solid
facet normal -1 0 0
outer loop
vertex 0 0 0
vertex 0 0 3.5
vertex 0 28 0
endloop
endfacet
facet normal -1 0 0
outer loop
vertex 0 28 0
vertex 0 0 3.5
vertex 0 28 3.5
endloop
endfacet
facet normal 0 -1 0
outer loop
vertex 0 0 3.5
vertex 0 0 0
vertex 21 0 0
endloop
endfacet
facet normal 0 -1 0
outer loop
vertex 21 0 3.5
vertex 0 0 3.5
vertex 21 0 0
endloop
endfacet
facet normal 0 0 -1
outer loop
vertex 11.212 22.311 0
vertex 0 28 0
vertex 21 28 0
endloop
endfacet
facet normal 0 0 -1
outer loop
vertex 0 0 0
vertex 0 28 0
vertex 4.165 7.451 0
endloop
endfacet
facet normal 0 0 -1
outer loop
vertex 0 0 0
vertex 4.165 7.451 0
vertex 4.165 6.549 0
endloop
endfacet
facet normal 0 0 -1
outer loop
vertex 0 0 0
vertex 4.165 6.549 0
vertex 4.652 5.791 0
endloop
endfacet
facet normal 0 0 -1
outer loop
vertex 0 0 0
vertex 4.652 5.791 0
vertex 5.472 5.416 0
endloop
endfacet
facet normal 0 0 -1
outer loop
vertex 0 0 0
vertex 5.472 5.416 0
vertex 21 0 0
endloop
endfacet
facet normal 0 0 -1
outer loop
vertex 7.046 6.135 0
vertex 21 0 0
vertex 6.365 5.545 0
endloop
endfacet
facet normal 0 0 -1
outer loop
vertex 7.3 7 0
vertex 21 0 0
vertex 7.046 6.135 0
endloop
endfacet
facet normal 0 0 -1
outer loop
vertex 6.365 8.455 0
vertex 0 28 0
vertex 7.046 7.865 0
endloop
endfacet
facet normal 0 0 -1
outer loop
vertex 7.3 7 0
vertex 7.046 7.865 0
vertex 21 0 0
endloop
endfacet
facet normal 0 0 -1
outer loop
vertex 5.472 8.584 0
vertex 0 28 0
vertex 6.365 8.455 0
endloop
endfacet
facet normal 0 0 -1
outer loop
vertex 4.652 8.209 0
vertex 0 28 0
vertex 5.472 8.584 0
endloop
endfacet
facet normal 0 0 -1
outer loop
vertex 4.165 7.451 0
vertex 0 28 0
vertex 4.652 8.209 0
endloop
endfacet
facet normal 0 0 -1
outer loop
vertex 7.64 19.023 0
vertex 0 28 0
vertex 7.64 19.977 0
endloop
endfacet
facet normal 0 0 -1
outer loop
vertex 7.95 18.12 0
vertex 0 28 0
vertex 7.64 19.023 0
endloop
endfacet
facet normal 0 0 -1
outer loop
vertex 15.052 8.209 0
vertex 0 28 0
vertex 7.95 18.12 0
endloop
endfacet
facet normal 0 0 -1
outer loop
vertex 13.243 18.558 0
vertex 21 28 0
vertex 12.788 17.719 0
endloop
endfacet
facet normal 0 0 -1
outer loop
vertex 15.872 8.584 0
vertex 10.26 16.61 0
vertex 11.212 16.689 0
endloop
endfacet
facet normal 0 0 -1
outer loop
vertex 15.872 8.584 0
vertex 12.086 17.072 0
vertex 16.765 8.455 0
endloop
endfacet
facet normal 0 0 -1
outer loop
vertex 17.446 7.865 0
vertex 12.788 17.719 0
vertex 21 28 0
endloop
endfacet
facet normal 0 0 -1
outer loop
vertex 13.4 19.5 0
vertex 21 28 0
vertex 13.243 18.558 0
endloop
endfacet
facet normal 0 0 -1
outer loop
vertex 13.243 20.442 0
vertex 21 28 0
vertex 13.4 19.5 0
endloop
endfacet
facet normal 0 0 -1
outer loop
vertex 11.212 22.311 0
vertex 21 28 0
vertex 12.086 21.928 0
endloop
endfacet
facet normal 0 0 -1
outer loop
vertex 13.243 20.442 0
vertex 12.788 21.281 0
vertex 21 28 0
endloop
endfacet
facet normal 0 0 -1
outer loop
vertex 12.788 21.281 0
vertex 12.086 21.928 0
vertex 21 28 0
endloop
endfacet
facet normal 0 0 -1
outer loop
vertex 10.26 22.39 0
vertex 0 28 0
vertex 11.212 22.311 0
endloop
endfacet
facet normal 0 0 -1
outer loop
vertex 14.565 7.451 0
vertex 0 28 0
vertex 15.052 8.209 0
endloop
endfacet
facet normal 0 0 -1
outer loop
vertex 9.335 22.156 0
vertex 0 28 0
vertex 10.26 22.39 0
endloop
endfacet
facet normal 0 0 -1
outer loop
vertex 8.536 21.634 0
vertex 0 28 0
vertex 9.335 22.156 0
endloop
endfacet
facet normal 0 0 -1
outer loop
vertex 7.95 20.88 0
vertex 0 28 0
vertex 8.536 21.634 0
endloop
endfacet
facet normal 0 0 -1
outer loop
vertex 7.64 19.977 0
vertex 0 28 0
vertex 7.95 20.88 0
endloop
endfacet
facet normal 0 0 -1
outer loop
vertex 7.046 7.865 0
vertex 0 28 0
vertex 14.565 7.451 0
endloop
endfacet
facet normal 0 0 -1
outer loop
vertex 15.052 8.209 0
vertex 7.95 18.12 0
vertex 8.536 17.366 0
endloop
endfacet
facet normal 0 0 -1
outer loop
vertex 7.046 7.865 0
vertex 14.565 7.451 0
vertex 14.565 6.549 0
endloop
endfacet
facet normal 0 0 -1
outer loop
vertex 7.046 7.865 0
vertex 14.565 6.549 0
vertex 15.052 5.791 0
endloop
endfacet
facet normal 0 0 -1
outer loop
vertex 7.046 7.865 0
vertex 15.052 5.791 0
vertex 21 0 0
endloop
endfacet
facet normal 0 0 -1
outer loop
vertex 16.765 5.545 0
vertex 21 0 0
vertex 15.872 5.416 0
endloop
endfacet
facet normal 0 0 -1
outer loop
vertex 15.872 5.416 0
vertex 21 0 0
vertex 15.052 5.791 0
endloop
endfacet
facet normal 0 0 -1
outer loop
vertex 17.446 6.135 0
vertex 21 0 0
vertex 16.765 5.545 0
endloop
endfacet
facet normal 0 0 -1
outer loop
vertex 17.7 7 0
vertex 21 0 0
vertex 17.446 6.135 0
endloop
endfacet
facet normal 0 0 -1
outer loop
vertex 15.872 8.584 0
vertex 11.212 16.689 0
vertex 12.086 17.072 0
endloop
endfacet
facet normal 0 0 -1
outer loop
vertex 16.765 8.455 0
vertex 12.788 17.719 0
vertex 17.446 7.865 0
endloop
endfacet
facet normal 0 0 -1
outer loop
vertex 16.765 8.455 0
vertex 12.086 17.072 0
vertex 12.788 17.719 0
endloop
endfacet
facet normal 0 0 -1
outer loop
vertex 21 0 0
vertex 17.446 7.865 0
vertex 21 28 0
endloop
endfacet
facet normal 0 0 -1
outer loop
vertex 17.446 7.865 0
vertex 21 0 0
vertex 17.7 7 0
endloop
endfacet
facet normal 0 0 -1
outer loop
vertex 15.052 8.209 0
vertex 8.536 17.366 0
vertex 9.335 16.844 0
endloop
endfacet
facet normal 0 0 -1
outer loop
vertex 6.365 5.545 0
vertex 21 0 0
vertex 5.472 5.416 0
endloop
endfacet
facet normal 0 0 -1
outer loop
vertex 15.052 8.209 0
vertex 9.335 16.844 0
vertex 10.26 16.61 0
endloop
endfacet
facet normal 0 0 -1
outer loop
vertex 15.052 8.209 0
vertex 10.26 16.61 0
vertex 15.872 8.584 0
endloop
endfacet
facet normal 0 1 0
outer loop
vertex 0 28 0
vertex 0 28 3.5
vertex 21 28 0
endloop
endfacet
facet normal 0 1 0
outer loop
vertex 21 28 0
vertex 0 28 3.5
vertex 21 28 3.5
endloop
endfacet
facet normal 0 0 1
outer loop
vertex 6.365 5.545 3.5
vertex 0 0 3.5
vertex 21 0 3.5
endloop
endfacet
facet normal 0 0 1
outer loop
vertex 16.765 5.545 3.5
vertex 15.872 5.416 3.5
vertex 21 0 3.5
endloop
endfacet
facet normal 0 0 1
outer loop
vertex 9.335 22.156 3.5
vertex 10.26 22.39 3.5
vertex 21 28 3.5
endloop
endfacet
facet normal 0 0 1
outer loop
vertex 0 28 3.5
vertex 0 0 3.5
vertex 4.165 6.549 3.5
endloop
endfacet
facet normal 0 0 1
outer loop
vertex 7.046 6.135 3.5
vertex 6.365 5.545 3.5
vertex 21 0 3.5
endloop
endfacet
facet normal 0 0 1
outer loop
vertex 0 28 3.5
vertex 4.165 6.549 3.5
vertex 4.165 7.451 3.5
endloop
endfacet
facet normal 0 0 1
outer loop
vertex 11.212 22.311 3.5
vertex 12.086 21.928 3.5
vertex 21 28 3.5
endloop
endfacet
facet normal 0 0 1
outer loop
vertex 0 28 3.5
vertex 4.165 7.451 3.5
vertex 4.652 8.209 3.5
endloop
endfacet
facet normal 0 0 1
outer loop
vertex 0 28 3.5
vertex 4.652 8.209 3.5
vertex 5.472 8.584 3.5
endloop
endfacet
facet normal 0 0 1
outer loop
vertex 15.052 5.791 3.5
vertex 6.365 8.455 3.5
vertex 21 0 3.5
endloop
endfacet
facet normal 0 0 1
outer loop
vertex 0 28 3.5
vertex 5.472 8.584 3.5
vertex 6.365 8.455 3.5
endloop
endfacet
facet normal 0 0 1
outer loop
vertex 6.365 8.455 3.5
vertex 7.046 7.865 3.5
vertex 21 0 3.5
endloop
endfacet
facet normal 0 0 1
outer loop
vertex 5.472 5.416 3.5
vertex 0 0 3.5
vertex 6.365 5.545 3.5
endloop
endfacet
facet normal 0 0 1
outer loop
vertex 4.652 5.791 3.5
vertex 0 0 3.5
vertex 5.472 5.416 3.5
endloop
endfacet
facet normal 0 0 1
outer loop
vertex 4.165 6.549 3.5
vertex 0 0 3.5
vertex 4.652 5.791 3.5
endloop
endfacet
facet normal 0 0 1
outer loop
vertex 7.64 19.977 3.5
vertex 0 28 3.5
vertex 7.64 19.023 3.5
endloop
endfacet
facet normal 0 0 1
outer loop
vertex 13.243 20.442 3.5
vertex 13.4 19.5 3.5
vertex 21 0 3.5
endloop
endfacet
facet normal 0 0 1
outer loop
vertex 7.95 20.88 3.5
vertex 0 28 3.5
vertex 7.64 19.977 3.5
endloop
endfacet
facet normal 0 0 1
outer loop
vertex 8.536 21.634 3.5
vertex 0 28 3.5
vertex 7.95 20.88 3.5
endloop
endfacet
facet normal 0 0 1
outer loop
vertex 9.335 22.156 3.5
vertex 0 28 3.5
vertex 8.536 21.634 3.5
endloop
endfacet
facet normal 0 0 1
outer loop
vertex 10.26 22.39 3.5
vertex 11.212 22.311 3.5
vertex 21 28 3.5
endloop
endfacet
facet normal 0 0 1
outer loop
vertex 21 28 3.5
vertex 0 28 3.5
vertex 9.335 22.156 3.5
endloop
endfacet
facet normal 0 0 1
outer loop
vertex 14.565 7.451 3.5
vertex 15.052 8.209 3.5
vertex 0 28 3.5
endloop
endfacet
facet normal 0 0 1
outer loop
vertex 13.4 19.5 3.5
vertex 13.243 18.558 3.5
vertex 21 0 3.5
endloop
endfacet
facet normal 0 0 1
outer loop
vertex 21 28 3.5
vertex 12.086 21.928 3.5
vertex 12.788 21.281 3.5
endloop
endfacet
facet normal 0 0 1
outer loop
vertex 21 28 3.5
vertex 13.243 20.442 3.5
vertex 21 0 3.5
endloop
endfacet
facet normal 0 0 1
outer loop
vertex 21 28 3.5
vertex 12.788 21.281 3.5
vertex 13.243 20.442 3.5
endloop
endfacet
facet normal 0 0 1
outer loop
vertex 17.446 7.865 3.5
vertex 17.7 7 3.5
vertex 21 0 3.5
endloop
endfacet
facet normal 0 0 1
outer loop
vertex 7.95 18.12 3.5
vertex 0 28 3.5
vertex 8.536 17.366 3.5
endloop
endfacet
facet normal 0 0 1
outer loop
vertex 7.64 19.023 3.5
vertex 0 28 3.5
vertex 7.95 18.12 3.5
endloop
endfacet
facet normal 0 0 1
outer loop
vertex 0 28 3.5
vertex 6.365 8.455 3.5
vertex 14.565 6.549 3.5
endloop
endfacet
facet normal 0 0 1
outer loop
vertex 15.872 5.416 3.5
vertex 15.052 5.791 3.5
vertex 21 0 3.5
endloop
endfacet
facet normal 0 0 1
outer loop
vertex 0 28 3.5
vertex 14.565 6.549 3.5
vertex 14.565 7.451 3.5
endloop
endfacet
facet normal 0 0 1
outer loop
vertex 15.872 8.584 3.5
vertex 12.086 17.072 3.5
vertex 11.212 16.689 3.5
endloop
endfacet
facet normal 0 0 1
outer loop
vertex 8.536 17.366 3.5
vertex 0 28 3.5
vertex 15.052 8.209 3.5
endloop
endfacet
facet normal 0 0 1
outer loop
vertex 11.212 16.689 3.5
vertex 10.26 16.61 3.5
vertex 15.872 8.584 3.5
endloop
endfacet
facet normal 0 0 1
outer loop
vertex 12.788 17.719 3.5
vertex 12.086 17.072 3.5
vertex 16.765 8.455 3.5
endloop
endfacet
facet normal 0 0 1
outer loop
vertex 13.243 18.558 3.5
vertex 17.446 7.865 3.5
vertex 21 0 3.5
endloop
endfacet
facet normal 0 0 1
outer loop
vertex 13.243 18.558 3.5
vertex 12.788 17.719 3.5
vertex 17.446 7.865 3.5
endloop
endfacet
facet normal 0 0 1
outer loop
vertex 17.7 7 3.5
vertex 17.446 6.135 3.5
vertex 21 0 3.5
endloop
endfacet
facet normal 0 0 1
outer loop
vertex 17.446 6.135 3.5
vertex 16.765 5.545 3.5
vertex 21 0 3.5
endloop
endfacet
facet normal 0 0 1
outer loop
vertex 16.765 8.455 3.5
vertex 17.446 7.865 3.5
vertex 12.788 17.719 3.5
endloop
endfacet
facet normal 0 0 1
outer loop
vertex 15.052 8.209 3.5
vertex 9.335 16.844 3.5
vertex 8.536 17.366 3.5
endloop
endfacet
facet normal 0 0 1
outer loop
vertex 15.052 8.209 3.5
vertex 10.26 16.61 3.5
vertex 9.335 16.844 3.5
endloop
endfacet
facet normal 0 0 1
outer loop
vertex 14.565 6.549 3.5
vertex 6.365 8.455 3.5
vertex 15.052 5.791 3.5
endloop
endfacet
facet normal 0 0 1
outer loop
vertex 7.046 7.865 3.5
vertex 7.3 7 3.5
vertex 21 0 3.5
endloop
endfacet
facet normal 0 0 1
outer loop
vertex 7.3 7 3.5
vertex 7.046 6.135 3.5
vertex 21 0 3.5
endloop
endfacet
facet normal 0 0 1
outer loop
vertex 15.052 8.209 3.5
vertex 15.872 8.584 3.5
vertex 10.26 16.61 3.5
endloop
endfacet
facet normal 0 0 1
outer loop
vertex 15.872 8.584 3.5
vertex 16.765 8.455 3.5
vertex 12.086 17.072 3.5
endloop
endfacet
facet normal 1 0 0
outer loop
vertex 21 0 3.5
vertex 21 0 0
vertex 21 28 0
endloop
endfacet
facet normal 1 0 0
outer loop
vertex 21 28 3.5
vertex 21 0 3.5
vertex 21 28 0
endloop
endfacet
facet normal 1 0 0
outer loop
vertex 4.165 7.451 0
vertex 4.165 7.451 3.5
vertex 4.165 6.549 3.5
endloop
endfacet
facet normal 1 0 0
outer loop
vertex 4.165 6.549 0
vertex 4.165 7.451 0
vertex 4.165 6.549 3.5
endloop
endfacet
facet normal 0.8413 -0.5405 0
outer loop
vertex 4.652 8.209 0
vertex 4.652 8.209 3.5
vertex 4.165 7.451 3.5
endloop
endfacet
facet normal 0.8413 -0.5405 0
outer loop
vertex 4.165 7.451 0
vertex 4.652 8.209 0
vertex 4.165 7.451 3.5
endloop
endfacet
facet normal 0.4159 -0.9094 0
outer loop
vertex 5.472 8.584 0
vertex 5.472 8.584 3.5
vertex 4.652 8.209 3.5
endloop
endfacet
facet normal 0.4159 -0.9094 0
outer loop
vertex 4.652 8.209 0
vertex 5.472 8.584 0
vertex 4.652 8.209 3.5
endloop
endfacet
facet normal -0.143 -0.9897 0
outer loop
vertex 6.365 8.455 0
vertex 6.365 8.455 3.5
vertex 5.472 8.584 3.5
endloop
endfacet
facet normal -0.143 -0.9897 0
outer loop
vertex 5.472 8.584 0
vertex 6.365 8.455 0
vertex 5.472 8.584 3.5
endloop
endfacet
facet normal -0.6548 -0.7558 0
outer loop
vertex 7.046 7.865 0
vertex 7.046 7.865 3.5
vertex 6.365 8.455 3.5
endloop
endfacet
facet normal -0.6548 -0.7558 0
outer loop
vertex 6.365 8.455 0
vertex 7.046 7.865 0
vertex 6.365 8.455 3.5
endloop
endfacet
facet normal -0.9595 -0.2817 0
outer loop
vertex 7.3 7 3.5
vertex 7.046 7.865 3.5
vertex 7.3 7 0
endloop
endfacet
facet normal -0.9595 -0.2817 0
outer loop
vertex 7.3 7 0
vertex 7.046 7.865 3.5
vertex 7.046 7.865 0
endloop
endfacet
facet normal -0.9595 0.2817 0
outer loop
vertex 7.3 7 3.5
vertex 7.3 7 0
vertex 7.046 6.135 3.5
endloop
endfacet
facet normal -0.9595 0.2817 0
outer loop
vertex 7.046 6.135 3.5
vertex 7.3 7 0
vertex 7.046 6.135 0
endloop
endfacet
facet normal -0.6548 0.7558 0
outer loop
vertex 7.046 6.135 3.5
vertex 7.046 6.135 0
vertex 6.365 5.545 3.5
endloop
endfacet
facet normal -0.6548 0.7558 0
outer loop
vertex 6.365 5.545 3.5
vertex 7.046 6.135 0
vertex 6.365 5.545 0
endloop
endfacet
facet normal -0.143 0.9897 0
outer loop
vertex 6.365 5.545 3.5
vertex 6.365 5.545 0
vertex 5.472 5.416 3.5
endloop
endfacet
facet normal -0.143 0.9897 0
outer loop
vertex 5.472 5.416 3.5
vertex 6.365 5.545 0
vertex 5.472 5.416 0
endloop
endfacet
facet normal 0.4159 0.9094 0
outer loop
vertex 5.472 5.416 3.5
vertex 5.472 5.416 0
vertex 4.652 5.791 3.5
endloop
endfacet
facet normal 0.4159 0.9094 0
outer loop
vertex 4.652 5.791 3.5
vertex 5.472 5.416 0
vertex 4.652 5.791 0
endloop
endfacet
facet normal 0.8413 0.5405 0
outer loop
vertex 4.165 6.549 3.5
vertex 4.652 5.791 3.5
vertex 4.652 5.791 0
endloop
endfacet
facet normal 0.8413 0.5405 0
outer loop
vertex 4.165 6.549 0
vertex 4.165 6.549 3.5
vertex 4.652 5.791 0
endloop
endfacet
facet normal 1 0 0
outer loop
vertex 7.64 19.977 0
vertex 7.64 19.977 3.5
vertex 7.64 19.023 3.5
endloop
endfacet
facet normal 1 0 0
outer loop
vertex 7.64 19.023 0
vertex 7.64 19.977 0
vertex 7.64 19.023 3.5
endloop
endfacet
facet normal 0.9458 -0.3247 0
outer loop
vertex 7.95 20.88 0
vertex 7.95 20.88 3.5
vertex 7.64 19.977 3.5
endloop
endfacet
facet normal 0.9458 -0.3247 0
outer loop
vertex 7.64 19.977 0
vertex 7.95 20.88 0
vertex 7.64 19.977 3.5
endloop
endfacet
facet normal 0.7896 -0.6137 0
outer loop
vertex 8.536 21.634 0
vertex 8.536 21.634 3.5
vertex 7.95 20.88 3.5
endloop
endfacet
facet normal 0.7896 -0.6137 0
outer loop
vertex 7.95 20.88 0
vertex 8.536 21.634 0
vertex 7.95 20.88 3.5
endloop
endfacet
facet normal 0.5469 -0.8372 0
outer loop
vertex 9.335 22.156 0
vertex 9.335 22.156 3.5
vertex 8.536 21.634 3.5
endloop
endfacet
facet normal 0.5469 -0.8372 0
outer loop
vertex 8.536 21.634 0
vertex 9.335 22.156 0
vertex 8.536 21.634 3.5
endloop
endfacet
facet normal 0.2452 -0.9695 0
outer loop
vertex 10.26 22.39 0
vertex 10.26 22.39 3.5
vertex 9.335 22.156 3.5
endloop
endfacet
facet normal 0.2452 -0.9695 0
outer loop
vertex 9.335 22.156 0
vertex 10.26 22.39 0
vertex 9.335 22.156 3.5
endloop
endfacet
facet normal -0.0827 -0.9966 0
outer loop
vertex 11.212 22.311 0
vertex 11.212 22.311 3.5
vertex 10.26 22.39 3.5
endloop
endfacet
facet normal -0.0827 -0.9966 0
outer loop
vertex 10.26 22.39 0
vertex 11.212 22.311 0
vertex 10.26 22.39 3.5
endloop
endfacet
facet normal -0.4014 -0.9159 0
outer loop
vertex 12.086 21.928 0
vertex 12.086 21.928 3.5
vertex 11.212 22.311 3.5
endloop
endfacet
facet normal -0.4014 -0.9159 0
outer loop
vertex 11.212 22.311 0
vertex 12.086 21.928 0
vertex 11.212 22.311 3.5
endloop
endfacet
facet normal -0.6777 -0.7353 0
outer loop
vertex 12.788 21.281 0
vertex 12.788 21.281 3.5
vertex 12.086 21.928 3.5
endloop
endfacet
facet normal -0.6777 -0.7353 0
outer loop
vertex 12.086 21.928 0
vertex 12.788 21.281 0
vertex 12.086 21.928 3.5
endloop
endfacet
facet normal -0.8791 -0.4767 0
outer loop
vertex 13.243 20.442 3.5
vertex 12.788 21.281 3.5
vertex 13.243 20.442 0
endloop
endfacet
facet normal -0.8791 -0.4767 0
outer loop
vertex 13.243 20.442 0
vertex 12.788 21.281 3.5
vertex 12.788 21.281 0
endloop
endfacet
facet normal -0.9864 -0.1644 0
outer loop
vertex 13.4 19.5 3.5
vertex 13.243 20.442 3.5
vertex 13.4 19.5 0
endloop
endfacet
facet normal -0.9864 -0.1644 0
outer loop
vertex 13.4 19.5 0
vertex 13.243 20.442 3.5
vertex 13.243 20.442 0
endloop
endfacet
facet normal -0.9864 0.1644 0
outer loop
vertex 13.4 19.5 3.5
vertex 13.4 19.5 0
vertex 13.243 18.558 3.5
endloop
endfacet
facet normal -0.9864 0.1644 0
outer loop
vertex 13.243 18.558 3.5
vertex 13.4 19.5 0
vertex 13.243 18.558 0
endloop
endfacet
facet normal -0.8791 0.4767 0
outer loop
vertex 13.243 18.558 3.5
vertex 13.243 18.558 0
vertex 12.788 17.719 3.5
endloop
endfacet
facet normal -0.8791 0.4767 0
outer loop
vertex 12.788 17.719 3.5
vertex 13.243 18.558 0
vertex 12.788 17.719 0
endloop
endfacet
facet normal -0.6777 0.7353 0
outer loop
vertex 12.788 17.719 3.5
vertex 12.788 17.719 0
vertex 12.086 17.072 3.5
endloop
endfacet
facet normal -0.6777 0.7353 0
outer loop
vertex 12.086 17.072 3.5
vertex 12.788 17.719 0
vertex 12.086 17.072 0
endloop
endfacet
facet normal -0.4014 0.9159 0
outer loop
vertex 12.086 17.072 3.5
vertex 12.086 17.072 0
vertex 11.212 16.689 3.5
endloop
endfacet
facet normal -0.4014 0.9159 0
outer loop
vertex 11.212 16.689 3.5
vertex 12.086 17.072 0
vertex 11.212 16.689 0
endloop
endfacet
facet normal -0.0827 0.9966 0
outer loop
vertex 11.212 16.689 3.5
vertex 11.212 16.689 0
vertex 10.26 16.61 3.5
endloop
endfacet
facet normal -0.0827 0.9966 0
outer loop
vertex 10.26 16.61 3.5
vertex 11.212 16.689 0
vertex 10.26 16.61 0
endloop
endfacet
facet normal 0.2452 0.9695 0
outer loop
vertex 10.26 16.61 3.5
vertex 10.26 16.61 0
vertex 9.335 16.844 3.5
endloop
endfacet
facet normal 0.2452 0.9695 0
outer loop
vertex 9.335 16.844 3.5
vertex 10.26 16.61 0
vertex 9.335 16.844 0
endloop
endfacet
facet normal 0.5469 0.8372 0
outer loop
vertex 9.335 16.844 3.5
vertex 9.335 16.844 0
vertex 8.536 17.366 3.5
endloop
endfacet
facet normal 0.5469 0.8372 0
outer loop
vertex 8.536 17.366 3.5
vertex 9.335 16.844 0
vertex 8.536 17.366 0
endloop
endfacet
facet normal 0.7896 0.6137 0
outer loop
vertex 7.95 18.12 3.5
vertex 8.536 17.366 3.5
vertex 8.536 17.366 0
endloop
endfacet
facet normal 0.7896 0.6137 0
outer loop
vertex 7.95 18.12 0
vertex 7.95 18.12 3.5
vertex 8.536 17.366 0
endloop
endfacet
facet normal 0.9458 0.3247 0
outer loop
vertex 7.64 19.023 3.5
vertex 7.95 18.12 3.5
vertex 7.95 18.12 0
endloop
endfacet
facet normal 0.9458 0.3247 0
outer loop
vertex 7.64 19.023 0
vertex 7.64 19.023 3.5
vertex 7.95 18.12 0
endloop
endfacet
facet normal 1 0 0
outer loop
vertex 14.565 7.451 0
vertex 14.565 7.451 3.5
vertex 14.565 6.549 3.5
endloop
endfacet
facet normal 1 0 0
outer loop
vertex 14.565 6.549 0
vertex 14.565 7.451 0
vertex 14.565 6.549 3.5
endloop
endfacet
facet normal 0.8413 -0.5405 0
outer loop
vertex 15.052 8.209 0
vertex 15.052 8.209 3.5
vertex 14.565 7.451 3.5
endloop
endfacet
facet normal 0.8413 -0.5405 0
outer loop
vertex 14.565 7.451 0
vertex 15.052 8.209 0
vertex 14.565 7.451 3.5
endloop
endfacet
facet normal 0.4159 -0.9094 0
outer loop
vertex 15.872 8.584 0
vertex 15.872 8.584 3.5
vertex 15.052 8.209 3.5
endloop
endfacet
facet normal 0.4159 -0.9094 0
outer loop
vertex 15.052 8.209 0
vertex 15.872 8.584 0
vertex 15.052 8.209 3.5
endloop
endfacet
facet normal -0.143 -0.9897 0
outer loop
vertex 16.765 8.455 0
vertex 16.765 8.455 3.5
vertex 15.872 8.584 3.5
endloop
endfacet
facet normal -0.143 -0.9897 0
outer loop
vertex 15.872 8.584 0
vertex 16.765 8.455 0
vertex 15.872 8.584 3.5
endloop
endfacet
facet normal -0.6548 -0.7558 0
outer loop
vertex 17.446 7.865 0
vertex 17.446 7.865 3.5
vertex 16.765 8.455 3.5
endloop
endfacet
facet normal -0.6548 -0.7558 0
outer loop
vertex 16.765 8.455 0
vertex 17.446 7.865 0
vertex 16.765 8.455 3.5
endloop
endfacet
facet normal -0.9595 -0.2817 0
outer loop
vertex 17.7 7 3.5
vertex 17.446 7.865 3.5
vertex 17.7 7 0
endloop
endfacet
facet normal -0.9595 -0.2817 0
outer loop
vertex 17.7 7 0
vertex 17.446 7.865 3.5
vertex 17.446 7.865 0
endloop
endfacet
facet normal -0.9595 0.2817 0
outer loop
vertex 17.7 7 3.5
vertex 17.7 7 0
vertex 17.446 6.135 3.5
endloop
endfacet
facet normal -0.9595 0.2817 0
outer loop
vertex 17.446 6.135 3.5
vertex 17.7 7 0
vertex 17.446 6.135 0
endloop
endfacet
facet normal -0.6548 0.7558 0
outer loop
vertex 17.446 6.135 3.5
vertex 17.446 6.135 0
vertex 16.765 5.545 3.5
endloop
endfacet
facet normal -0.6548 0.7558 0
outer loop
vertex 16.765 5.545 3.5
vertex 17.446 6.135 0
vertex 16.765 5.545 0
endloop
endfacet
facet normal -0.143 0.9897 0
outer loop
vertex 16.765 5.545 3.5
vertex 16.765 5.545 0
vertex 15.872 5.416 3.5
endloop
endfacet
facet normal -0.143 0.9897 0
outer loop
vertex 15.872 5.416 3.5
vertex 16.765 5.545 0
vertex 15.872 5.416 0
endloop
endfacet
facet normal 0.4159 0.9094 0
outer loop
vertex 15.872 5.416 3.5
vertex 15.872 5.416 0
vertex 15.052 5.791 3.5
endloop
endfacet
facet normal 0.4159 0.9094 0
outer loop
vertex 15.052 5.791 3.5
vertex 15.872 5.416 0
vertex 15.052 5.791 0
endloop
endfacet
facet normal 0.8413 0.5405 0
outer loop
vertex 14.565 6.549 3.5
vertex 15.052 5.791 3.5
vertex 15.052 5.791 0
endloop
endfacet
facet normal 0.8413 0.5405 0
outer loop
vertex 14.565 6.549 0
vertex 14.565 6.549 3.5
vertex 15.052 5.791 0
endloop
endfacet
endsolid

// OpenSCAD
t = 0.4;
e = 3.5;
r1 = 1.2;
r2 = 2.5;
$fs = 1;

difference() {
	cube([21,28,e]);

	translate([10.5, 19.5, 0]) cylinder(e, r2 + t, r2 + t);
	translate([5.7, 7, 0]) {
		translate([10.4, 0, 0]) cylinder(e, r1 + t, r1 + t);
		cylinder(e, r1 + t, r1 + t);
	}
}
